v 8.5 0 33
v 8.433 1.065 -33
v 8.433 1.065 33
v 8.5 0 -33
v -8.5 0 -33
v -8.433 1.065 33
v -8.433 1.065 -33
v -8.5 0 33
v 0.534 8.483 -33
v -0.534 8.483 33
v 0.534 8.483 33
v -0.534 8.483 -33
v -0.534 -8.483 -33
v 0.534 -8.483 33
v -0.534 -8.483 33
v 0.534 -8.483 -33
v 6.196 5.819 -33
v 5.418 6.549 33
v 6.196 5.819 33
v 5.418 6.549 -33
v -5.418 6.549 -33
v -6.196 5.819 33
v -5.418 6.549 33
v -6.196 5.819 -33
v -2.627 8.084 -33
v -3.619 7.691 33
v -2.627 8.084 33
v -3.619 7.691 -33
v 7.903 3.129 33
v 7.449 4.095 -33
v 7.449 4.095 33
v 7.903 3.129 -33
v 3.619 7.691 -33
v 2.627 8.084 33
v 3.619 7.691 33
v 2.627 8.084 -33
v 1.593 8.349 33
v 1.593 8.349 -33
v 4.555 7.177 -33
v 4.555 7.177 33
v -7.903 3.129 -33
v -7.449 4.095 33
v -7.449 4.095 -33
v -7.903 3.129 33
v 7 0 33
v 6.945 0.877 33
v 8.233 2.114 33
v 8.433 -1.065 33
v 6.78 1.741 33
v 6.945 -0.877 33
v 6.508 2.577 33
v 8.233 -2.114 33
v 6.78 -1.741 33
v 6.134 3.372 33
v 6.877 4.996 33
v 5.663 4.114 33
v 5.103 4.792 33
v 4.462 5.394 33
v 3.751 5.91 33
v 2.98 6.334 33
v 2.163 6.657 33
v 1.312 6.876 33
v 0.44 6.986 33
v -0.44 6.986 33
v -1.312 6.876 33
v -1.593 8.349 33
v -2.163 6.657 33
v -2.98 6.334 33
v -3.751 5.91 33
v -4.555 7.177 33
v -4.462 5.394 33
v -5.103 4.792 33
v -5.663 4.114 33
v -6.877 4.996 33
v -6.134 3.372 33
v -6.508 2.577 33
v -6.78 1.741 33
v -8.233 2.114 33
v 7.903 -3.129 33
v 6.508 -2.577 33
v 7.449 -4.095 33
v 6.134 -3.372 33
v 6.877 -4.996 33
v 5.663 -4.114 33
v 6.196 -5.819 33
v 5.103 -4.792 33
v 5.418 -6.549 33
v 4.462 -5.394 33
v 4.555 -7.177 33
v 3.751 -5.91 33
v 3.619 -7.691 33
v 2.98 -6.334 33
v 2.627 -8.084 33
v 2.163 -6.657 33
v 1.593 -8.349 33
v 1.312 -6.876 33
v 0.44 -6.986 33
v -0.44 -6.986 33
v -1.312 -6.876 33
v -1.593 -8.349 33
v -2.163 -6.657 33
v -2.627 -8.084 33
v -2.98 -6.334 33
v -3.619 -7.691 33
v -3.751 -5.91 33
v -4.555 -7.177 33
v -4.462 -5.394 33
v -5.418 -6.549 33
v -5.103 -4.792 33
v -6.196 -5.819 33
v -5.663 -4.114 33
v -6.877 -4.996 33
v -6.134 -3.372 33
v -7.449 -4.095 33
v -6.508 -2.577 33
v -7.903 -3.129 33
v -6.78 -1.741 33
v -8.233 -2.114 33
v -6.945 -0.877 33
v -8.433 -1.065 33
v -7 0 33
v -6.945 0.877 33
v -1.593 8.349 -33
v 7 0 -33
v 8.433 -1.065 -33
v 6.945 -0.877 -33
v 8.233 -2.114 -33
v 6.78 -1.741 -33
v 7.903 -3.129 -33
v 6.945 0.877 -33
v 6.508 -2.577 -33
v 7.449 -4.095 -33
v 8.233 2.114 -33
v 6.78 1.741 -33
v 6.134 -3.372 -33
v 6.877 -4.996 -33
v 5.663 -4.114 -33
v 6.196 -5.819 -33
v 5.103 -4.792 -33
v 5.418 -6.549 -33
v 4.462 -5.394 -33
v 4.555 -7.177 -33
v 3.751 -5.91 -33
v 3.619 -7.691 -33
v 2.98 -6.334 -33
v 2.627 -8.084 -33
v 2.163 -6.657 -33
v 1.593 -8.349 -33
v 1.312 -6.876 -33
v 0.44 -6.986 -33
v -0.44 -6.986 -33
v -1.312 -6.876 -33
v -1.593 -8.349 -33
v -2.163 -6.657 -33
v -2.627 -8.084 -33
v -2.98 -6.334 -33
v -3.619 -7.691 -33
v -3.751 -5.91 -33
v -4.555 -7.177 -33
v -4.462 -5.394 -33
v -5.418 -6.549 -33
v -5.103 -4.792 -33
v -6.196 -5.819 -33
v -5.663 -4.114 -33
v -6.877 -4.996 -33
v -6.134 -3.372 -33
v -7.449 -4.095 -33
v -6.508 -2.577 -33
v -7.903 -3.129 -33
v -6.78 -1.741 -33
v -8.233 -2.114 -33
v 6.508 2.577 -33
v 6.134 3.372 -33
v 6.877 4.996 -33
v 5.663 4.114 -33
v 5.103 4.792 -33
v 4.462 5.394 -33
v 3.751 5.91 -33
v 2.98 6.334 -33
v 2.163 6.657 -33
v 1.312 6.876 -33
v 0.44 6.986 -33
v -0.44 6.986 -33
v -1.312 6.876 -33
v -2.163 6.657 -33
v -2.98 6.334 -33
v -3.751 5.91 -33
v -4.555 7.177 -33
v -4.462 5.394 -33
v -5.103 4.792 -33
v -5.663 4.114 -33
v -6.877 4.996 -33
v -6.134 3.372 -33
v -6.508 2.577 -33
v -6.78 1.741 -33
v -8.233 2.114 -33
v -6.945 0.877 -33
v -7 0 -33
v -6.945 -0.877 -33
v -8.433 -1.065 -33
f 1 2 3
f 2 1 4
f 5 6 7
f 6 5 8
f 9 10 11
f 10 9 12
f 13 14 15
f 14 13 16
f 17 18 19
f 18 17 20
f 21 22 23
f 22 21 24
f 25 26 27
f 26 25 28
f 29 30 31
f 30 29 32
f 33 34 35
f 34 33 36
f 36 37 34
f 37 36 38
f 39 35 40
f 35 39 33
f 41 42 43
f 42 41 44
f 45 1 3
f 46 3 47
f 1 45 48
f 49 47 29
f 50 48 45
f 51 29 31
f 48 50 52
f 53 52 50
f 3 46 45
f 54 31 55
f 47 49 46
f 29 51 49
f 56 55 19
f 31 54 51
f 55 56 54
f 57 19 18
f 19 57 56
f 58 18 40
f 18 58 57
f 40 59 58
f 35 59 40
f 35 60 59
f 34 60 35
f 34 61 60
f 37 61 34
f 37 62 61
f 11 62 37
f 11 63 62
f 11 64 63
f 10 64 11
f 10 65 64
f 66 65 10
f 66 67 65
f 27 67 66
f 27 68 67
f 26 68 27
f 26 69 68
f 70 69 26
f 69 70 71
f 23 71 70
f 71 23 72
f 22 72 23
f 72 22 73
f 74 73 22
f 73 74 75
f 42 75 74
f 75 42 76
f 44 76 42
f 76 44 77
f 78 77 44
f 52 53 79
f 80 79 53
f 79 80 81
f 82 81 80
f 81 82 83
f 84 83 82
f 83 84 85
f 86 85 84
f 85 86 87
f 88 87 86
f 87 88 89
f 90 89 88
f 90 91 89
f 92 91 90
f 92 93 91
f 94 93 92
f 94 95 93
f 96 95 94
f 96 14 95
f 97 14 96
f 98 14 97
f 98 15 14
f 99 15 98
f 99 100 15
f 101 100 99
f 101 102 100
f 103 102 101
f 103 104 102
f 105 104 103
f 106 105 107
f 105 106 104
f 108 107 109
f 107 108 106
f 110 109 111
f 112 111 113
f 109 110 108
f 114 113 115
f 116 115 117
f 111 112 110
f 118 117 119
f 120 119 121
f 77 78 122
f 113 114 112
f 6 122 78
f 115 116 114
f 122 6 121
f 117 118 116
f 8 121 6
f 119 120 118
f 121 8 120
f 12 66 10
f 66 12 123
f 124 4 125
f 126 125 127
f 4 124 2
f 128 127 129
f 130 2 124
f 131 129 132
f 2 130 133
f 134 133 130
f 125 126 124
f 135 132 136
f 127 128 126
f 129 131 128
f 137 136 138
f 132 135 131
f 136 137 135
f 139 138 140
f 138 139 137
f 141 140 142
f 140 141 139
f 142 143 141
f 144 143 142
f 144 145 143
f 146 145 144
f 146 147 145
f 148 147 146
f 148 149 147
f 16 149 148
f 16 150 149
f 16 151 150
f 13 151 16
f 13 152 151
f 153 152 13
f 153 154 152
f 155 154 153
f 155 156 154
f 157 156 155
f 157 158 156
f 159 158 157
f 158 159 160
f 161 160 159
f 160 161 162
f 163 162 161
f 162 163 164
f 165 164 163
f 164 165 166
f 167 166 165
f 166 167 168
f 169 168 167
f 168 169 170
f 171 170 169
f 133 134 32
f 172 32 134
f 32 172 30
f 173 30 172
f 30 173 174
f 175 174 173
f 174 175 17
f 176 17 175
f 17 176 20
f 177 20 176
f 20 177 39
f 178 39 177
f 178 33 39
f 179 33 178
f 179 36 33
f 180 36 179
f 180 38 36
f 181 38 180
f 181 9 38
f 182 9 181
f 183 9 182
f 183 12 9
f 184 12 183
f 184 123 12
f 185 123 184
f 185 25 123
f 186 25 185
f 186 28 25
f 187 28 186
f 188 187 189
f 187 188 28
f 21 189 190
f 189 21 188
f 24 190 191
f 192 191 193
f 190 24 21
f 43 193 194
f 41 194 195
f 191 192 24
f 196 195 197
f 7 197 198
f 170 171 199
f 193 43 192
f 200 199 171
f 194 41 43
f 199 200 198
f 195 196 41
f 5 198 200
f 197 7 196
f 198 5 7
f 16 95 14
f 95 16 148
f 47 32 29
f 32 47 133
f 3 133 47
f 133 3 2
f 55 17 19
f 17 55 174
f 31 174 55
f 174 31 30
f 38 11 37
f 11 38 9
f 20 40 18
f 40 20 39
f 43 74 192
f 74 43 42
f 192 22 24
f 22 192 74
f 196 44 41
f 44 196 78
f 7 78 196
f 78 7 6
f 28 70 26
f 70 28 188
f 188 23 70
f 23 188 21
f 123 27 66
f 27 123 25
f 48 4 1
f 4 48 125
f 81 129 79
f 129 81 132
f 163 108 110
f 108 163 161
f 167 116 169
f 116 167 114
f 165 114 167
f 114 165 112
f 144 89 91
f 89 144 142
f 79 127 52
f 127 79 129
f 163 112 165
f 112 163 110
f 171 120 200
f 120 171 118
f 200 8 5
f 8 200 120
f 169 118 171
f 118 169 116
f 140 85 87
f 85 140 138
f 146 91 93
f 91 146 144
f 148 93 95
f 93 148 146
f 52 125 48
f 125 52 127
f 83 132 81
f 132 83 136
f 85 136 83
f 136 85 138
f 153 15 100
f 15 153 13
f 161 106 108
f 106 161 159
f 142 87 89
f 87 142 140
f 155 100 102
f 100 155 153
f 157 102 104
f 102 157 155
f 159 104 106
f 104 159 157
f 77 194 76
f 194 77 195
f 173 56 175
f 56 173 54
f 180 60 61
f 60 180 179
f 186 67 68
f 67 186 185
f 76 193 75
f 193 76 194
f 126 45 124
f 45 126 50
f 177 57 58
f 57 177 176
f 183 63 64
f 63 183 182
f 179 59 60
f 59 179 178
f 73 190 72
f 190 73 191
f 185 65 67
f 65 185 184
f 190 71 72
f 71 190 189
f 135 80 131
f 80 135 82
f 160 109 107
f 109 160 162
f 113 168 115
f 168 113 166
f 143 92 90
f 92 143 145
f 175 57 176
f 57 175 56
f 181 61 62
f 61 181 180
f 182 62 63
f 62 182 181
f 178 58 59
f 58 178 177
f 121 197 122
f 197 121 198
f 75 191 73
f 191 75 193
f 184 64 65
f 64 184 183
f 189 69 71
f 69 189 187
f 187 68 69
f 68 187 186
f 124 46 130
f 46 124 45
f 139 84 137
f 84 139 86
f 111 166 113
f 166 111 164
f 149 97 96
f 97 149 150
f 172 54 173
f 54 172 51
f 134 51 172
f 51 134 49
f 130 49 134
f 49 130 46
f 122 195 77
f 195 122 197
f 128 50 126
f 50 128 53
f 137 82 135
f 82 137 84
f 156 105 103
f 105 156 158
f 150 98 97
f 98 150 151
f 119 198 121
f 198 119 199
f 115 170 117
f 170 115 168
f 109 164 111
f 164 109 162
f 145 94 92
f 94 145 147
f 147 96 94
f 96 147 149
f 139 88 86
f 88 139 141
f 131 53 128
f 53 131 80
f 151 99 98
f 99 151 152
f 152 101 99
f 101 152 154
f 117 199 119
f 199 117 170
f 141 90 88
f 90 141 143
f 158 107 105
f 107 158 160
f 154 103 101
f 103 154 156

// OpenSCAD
$fn = 50;


difference() {
	union() {
		translate(v = [0, 0, -33.0000000000]) {
			cylinder(h = 66, r = 8.5000000000);
		}
	}
	union() {
		translate(v = [0, 0, -100.0000000000]) {
			cylinder(h = 200, r = 7);
		}
	}
}
